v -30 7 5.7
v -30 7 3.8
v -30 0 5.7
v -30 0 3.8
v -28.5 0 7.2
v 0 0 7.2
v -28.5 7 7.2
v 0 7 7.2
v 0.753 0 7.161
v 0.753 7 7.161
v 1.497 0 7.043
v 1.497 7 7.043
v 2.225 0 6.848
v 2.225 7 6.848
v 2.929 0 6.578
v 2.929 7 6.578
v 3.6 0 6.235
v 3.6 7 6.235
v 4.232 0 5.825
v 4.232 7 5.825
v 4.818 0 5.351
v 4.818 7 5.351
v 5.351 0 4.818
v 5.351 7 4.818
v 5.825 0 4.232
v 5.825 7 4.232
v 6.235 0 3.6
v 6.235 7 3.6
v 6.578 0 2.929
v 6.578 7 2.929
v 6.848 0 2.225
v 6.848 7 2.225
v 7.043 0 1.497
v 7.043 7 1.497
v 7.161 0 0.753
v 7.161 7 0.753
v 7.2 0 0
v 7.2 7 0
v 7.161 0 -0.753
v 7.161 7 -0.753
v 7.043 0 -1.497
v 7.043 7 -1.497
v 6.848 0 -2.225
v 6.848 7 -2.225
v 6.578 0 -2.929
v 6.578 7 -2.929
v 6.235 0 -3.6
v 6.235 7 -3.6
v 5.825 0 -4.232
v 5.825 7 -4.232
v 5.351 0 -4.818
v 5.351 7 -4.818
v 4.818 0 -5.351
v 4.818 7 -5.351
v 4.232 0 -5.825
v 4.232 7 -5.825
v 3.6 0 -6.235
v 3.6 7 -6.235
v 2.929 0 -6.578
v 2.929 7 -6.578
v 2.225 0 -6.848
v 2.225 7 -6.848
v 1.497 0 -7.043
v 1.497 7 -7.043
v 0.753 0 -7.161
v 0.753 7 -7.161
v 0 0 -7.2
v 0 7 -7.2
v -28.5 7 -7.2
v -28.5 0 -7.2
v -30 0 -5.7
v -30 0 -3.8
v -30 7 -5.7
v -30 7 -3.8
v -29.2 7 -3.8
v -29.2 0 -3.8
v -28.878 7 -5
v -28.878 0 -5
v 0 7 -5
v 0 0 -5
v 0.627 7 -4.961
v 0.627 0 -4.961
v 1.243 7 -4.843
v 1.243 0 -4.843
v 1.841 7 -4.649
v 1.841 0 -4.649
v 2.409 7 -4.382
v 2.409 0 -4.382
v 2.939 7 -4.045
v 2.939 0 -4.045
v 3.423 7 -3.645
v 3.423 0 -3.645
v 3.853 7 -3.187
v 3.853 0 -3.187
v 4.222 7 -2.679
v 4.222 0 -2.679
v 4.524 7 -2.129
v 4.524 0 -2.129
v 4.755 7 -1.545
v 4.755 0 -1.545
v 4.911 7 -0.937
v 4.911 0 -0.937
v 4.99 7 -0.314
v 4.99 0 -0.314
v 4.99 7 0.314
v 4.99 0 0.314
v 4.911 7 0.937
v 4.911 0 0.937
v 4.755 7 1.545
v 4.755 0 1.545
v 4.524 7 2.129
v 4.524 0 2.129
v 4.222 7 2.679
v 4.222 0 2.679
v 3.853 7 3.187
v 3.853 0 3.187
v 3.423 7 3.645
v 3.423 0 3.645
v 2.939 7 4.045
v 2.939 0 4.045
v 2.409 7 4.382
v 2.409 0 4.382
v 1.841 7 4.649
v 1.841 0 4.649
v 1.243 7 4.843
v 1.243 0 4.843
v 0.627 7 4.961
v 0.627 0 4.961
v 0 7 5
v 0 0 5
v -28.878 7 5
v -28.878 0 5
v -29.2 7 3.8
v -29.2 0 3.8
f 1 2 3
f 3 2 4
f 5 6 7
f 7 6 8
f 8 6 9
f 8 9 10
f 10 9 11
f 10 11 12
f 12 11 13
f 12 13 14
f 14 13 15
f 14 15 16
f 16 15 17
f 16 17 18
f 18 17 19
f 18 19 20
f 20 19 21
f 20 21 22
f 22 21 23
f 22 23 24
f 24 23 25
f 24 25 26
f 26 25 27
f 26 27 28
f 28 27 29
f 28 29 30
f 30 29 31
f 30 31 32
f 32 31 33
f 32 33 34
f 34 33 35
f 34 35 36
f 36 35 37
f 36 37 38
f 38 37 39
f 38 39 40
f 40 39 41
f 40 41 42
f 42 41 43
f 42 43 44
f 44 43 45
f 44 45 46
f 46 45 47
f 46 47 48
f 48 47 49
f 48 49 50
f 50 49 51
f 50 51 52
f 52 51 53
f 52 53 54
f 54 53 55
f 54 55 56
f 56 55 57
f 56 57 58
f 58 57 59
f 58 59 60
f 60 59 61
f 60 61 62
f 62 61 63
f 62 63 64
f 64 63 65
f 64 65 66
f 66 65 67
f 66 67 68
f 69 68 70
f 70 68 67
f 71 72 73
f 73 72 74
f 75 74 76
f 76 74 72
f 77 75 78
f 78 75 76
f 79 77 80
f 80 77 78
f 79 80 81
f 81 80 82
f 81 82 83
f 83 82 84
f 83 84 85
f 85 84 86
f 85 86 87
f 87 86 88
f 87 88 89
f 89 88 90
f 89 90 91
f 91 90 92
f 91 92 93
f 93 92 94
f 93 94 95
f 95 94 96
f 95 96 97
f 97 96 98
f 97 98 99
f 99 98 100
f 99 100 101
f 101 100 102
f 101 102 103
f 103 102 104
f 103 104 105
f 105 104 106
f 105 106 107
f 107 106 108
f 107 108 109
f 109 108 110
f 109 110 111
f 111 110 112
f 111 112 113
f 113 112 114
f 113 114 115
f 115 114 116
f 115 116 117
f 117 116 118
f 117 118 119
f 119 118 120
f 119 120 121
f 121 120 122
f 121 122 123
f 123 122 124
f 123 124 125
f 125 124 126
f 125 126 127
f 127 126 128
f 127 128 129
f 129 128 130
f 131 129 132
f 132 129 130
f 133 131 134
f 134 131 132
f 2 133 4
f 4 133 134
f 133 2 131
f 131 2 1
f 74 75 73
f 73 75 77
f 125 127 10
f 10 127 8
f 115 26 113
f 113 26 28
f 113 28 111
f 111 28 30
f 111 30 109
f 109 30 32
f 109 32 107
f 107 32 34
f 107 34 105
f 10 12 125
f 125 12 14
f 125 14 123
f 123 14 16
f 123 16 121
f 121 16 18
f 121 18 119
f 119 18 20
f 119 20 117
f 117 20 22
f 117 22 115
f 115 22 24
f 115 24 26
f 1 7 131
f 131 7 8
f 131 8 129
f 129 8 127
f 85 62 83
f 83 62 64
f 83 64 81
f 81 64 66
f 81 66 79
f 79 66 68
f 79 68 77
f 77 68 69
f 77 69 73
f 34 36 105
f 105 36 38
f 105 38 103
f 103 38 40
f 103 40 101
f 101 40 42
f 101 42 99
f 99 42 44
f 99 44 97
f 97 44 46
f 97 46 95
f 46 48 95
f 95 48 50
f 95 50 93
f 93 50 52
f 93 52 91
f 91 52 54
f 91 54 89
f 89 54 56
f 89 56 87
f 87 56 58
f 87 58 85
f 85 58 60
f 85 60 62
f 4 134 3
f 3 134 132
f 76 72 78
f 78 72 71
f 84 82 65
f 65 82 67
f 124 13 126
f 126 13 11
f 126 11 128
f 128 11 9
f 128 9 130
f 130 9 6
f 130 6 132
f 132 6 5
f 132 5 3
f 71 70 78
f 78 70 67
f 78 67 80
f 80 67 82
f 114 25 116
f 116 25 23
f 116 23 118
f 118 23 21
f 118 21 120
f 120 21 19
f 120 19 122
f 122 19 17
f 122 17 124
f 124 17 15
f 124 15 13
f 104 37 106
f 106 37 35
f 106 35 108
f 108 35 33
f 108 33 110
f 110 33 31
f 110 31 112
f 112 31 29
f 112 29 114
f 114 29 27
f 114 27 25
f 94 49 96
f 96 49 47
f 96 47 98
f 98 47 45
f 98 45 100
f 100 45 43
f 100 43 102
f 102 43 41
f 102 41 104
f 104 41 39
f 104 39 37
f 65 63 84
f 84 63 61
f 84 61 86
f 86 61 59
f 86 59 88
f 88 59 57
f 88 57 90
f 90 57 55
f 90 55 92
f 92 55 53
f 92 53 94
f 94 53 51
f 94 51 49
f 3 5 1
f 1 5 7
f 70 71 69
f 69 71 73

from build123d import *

# Parameters (mm, degrees)
BOSS_EXTRUDE1_DEPTH = 7
CHAMFER1_SIZE       = 1.5


with BuildPart() as part:
    # Sketch1 → Boss-Extrude1 (new body)
    with BuildSketch(Plane(origin=(0, 0, 0), x_dir=(1, 0, 0), z_dir=(0, 1, 0))):
        with BuildLine():
            Line((-29.2, 3.8), (-28.878460969, 5))
            Line((-28.878460969, 5), (0, 5))
            ThreePointArc((0, 5), (5, 0), (0, -5))
            Line((0, -5), (-28.878460969, -5))
            Line((-28.878460969, -5), (-29.2, -3.8))
            Line((-29.2, -3.8), (-30, -3.8))
            Line((-30, -3.8), (-30, -7.2))
            Line((-30, -7.2), (0, -7.2))
            ThreePointArc((0, -7.2), (7.2, 0), (0, 7.2))
            Line((0, 7.2), (-30, 7.2))
            Line((-30, 7.2), (-30, 3.8))
            Line((-30, 3.8), (-29.2, 3.8))
        make_face()
    extrude(amount=BOSS_EXTRUDE1_DEPTH)

    # Chamfer1
    chamfer1_edges = [part.edges().sort_by_distance(p)[0] for p in [
        (-30, 3.5, -7.2),
        (-30, 3.5, 7.2),
    ]]
    chamfer(chamfer1_edges, length=CHAMFER1_SIZE)


solid = part.part
